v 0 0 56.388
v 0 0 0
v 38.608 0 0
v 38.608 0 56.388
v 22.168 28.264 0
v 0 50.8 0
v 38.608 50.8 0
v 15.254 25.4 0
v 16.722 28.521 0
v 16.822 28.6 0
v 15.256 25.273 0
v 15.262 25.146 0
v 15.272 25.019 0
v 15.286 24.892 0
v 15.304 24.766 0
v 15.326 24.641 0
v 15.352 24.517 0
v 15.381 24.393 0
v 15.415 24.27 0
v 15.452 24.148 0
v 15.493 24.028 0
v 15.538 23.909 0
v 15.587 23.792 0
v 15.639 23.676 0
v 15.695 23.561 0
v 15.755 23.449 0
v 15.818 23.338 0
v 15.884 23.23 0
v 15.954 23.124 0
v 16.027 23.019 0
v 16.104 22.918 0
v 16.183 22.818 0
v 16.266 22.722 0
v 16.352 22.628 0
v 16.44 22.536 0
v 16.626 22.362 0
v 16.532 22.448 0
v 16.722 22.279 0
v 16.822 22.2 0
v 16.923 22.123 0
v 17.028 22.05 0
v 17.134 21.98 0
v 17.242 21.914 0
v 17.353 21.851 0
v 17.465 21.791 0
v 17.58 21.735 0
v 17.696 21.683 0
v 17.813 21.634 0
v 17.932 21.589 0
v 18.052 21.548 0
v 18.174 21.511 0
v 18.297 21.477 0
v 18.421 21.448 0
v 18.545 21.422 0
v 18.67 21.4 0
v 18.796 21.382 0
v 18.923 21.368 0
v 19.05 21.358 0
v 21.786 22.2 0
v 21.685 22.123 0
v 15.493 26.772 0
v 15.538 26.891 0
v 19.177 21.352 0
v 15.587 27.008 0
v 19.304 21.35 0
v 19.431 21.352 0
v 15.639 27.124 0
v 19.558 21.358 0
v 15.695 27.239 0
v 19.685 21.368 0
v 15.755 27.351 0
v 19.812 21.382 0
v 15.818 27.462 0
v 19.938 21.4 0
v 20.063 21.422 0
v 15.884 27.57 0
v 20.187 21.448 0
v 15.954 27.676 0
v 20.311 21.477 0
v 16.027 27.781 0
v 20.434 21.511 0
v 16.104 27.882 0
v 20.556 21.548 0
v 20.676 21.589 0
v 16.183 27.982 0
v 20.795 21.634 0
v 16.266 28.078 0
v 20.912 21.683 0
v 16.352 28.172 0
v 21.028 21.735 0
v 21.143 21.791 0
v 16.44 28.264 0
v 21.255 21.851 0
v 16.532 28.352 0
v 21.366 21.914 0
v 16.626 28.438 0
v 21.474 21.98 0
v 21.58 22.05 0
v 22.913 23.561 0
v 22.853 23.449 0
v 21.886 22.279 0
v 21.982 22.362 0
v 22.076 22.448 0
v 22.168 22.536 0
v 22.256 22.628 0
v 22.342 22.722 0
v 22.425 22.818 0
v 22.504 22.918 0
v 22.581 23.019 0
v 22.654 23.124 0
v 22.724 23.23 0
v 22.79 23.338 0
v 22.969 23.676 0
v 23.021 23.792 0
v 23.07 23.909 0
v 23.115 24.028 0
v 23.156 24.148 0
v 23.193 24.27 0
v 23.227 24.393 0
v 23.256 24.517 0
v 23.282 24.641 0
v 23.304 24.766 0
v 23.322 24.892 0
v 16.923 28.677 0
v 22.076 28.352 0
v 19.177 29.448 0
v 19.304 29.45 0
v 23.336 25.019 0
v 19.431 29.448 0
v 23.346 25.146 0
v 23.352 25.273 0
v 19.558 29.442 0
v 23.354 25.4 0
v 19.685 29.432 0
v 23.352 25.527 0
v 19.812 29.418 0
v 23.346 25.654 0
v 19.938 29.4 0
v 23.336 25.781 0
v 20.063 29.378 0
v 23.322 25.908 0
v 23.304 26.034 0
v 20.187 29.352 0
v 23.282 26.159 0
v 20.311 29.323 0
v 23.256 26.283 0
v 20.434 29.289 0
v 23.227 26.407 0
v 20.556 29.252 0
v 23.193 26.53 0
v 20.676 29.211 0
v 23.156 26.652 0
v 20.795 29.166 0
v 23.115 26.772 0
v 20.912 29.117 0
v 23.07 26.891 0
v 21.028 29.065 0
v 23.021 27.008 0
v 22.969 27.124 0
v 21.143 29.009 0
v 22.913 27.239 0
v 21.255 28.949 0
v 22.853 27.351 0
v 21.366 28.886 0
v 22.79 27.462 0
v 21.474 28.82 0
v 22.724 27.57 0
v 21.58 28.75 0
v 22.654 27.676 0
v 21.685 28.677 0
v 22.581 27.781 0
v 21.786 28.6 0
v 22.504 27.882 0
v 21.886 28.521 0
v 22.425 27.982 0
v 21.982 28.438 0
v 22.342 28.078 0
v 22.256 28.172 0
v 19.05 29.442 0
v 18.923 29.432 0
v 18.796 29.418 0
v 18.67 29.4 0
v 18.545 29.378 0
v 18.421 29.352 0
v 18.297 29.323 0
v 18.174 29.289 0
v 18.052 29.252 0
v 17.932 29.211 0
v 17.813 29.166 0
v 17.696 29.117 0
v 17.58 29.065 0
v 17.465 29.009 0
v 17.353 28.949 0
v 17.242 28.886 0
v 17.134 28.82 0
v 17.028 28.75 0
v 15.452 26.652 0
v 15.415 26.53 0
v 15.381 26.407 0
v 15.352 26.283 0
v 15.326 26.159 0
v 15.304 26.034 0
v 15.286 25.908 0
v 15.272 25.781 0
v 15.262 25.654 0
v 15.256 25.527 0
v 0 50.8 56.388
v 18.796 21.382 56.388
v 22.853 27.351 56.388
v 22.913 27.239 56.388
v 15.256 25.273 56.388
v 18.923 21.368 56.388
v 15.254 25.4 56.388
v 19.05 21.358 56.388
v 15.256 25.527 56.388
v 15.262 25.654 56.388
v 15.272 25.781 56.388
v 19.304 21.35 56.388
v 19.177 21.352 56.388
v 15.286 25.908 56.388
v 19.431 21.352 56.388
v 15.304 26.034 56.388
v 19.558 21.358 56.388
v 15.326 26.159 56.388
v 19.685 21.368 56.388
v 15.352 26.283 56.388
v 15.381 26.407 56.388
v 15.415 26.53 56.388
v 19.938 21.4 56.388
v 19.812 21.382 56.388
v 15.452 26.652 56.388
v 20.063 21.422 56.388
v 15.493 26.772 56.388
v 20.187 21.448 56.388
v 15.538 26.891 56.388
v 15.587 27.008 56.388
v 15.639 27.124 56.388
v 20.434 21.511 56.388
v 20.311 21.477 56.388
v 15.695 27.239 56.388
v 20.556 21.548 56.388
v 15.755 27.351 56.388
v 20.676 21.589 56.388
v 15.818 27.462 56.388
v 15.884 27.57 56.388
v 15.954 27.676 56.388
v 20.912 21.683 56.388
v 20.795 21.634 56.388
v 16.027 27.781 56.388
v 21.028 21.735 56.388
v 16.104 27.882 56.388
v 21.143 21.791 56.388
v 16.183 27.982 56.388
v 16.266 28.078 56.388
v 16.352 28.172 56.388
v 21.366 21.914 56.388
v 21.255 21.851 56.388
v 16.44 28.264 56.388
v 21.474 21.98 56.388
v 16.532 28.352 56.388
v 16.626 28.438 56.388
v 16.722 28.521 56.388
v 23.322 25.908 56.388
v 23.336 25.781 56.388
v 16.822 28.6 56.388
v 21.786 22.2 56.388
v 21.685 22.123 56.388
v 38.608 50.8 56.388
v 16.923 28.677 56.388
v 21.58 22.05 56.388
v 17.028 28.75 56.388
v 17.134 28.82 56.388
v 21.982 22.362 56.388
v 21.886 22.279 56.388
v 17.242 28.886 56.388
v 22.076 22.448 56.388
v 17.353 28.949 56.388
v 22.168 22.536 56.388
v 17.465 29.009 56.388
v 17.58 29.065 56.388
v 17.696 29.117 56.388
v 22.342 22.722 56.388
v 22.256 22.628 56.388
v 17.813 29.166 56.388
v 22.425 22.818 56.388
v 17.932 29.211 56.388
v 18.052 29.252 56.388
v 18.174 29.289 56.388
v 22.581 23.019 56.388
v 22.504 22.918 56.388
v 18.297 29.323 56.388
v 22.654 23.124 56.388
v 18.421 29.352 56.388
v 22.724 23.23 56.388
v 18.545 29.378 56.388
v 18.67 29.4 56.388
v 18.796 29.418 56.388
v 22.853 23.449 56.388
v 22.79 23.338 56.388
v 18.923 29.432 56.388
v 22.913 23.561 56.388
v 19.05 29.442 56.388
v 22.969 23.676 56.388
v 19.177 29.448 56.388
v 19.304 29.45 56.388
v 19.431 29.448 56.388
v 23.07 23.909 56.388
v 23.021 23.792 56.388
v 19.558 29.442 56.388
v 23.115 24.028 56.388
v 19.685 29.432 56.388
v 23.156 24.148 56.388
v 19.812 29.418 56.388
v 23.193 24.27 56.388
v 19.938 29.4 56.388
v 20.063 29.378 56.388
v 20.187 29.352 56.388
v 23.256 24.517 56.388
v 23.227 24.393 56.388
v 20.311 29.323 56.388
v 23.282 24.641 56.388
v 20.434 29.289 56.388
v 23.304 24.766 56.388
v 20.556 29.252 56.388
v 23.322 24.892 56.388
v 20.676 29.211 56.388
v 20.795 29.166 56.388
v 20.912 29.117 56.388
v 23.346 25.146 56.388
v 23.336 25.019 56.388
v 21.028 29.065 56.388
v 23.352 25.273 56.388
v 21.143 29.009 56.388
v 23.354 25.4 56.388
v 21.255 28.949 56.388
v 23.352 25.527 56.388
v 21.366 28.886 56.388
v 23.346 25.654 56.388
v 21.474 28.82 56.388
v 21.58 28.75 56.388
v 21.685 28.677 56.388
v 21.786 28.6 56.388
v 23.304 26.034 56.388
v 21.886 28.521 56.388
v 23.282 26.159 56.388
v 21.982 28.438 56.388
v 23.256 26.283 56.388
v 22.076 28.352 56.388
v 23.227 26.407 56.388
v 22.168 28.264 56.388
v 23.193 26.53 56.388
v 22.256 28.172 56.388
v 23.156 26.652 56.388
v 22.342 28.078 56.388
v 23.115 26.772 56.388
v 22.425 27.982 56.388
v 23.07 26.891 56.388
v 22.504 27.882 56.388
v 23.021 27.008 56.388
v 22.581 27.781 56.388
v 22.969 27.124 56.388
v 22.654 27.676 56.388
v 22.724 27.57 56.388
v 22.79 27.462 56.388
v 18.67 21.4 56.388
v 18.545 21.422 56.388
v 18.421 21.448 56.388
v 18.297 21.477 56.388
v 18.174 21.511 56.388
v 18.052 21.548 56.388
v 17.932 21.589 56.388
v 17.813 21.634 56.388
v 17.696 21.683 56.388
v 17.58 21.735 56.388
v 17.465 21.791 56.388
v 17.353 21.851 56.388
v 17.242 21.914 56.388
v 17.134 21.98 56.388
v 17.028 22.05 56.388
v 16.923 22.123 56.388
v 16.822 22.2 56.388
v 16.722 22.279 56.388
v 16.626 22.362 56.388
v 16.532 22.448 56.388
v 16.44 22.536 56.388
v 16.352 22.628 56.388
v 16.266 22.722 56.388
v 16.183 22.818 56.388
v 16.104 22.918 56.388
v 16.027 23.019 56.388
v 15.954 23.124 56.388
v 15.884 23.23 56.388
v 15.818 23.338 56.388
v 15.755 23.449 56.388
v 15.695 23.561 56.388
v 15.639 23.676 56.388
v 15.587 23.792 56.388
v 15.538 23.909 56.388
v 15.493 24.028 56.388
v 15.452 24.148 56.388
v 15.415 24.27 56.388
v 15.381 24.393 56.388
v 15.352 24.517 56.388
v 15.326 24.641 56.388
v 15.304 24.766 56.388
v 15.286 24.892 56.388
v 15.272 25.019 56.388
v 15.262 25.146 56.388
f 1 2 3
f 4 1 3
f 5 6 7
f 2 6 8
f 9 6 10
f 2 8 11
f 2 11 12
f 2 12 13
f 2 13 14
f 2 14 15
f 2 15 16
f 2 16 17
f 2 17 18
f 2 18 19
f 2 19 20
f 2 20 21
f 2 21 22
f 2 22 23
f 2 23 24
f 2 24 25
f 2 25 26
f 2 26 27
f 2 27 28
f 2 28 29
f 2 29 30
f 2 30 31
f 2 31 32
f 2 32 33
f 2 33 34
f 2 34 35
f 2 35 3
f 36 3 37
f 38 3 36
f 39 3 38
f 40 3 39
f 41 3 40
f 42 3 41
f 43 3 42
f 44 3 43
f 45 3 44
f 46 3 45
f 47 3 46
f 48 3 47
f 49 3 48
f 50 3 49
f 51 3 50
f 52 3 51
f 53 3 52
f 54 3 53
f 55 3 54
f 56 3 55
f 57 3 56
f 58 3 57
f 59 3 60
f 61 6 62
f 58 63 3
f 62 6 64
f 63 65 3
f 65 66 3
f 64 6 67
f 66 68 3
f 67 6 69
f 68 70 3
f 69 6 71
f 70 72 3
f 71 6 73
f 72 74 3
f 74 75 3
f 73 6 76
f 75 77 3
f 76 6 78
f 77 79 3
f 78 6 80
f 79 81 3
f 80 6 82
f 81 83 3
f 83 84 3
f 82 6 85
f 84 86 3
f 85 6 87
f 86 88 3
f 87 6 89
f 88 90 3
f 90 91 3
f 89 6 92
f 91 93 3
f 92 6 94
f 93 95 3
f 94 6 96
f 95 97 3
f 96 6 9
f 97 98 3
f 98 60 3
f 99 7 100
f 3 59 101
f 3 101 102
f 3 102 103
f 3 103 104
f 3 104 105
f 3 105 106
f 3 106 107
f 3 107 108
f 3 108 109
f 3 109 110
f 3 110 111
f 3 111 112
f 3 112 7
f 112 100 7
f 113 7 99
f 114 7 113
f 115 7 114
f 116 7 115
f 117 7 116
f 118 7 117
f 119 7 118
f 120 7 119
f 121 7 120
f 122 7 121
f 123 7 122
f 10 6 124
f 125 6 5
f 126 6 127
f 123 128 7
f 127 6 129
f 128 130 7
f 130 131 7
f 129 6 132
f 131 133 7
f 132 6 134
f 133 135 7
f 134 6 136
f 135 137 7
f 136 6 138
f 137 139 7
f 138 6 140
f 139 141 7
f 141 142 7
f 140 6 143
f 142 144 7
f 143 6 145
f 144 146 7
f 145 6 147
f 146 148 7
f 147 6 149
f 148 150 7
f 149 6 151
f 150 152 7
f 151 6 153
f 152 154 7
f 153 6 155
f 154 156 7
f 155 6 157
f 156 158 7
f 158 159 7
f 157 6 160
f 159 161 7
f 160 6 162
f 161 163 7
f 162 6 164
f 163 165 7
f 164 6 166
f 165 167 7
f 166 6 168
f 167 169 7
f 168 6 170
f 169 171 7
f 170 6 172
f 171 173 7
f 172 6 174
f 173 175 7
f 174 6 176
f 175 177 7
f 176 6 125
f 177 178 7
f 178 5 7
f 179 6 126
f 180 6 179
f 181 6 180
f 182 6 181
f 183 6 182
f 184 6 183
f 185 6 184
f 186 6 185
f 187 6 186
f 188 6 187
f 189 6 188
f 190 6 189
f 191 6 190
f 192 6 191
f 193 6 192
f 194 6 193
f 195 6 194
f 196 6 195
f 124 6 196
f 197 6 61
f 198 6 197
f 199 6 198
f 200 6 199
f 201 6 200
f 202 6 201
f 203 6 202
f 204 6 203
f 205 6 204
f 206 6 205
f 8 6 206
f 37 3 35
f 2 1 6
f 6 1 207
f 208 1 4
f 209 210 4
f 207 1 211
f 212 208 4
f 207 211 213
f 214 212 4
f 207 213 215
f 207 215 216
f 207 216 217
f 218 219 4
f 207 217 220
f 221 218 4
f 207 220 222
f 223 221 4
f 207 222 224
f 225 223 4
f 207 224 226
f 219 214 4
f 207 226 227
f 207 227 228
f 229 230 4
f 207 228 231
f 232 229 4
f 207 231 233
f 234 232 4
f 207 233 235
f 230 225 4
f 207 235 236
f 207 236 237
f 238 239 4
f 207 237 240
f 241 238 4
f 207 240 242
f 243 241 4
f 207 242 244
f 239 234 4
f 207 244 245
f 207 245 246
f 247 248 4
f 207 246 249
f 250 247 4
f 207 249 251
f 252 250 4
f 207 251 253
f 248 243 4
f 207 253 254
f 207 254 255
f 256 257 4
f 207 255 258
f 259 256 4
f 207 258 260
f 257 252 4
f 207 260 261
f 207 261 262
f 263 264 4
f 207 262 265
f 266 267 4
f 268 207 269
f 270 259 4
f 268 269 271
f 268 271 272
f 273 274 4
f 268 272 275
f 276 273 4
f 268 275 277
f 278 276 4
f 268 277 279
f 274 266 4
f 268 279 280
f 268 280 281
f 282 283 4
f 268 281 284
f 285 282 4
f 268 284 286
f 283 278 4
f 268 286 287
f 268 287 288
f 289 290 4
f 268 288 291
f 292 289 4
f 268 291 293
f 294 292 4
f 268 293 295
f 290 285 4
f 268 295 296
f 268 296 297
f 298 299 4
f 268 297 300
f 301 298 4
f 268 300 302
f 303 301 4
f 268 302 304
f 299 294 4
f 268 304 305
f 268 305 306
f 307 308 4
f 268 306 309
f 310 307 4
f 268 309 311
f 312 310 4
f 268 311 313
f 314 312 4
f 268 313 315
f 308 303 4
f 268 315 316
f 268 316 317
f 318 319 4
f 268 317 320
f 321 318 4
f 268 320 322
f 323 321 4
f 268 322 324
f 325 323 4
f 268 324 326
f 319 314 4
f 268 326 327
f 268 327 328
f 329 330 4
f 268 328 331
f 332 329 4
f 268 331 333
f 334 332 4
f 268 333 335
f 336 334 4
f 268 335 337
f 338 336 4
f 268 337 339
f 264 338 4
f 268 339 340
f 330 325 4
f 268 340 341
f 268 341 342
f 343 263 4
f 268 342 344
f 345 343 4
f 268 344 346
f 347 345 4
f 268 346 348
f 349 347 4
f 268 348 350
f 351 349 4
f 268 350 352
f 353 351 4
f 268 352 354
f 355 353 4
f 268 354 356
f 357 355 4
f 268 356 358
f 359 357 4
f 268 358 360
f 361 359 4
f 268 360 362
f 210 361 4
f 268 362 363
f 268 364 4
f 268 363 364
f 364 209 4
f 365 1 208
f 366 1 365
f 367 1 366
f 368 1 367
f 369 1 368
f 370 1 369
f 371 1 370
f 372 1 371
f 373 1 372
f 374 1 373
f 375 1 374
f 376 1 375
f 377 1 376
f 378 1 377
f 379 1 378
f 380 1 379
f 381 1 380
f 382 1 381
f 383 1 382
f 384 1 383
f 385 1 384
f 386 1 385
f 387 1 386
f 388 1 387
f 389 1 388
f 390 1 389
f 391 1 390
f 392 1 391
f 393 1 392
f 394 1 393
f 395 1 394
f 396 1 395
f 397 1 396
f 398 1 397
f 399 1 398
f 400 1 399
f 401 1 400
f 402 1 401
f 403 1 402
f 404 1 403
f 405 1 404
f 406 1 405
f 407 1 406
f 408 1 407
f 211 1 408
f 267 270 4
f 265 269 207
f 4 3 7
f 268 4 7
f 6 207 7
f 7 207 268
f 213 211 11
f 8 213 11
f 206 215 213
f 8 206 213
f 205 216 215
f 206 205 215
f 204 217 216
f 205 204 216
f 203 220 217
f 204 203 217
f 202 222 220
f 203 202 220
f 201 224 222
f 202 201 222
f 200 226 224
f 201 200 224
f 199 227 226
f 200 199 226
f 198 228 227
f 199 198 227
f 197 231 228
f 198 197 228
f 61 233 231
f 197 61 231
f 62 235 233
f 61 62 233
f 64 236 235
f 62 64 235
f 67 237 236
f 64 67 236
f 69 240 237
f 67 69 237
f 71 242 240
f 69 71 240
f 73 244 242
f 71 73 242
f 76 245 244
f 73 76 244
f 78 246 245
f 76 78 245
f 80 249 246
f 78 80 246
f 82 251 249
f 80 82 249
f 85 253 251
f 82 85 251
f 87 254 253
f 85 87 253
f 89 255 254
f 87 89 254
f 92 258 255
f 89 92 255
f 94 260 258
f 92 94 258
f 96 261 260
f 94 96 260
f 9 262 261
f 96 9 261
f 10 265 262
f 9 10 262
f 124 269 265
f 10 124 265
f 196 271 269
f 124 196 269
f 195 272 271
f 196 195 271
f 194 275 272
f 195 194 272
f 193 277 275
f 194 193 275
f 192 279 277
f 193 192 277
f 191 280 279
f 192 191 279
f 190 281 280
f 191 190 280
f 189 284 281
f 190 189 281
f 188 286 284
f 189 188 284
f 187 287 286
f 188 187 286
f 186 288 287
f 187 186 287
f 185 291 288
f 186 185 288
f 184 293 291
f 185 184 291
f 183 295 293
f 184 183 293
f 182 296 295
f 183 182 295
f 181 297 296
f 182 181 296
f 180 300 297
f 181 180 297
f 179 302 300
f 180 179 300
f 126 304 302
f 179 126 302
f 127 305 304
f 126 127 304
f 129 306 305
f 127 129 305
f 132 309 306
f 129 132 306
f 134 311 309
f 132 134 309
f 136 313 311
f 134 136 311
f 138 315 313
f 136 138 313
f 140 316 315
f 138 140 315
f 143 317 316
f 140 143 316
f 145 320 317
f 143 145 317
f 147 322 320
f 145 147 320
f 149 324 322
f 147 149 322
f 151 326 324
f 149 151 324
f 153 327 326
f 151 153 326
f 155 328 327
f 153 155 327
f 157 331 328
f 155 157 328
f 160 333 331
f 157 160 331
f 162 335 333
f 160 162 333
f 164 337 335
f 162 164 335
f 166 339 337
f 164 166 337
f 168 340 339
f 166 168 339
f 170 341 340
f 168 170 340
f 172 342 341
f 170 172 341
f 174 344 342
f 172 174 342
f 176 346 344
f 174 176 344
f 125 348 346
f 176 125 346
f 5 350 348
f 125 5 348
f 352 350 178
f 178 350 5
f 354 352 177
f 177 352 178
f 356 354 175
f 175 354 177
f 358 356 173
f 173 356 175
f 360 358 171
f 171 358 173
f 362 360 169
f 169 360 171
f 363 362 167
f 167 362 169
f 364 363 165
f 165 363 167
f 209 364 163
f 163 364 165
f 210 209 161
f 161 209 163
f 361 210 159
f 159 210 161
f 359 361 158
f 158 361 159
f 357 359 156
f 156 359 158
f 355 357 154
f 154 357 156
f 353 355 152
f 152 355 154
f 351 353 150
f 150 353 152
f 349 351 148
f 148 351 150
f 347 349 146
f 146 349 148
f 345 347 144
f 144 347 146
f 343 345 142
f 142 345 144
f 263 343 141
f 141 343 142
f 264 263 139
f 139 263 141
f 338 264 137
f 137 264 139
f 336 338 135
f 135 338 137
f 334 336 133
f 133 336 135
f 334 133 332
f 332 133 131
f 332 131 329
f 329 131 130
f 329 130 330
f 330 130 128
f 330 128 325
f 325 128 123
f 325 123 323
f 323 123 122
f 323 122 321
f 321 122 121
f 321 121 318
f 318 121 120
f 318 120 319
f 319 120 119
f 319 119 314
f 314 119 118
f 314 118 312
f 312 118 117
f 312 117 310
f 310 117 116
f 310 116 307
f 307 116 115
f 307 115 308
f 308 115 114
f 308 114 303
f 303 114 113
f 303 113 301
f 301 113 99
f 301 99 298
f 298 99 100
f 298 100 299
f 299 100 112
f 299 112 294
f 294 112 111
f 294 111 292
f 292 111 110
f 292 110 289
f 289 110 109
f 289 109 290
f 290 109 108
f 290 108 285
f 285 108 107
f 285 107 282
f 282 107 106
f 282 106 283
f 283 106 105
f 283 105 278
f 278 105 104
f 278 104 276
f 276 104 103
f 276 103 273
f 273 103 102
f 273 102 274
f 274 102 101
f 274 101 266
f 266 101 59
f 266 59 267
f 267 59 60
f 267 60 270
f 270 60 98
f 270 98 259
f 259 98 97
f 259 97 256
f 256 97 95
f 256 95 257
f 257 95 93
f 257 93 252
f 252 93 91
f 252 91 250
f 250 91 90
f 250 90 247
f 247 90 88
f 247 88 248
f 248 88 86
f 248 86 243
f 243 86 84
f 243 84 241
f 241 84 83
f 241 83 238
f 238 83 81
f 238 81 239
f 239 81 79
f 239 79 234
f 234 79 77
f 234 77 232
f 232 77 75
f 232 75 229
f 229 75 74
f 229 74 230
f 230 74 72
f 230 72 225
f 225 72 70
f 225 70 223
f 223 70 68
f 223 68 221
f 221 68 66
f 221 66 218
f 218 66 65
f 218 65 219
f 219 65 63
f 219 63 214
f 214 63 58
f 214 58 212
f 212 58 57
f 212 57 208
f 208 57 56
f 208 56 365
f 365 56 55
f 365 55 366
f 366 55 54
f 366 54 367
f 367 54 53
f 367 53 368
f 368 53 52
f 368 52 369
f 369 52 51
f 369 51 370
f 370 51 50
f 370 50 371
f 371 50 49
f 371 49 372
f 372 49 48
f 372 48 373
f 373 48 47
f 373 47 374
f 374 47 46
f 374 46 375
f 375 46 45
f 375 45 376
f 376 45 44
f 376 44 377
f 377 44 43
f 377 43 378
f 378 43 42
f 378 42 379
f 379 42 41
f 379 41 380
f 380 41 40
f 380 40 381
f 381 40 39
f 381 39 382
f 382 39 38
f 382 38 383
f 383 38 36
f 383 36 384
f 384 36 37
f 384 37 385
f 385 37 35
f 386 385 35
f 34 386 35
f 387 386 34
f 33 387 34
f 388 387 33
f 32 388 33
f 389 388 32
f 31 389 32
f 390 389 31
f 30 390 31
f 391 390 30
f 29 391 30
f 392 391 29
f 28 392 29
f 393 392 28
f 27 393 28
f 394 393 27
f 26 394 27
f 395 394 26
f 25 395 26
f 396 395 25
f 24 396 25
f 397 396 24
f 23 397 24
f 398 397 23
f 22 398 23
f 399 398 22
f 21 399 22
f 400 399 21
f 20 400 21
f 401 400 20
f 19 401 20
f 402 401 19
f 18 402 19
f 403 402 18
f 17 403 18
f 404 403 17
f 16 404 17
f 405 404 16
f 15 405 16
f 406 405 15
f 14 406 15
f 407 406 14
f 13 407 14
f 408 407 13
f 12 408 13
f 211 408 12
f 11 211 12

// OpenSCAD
width = 25.4 * 1.52;
depth = 25.4 * 2;
height = 2.22 * 25.4;
bolt = 8.1;

#difference()
{
linear_extrude(height = height )
{
	polygon(points=[[0, 0],[width, 0],[width, depth], [0, depth]]);

}

linear_extrude(height = height)
{
	translate([width/2, depth/2,0])
	{
		circle($fn = 200, r = bolt/2);
	}
}
}
